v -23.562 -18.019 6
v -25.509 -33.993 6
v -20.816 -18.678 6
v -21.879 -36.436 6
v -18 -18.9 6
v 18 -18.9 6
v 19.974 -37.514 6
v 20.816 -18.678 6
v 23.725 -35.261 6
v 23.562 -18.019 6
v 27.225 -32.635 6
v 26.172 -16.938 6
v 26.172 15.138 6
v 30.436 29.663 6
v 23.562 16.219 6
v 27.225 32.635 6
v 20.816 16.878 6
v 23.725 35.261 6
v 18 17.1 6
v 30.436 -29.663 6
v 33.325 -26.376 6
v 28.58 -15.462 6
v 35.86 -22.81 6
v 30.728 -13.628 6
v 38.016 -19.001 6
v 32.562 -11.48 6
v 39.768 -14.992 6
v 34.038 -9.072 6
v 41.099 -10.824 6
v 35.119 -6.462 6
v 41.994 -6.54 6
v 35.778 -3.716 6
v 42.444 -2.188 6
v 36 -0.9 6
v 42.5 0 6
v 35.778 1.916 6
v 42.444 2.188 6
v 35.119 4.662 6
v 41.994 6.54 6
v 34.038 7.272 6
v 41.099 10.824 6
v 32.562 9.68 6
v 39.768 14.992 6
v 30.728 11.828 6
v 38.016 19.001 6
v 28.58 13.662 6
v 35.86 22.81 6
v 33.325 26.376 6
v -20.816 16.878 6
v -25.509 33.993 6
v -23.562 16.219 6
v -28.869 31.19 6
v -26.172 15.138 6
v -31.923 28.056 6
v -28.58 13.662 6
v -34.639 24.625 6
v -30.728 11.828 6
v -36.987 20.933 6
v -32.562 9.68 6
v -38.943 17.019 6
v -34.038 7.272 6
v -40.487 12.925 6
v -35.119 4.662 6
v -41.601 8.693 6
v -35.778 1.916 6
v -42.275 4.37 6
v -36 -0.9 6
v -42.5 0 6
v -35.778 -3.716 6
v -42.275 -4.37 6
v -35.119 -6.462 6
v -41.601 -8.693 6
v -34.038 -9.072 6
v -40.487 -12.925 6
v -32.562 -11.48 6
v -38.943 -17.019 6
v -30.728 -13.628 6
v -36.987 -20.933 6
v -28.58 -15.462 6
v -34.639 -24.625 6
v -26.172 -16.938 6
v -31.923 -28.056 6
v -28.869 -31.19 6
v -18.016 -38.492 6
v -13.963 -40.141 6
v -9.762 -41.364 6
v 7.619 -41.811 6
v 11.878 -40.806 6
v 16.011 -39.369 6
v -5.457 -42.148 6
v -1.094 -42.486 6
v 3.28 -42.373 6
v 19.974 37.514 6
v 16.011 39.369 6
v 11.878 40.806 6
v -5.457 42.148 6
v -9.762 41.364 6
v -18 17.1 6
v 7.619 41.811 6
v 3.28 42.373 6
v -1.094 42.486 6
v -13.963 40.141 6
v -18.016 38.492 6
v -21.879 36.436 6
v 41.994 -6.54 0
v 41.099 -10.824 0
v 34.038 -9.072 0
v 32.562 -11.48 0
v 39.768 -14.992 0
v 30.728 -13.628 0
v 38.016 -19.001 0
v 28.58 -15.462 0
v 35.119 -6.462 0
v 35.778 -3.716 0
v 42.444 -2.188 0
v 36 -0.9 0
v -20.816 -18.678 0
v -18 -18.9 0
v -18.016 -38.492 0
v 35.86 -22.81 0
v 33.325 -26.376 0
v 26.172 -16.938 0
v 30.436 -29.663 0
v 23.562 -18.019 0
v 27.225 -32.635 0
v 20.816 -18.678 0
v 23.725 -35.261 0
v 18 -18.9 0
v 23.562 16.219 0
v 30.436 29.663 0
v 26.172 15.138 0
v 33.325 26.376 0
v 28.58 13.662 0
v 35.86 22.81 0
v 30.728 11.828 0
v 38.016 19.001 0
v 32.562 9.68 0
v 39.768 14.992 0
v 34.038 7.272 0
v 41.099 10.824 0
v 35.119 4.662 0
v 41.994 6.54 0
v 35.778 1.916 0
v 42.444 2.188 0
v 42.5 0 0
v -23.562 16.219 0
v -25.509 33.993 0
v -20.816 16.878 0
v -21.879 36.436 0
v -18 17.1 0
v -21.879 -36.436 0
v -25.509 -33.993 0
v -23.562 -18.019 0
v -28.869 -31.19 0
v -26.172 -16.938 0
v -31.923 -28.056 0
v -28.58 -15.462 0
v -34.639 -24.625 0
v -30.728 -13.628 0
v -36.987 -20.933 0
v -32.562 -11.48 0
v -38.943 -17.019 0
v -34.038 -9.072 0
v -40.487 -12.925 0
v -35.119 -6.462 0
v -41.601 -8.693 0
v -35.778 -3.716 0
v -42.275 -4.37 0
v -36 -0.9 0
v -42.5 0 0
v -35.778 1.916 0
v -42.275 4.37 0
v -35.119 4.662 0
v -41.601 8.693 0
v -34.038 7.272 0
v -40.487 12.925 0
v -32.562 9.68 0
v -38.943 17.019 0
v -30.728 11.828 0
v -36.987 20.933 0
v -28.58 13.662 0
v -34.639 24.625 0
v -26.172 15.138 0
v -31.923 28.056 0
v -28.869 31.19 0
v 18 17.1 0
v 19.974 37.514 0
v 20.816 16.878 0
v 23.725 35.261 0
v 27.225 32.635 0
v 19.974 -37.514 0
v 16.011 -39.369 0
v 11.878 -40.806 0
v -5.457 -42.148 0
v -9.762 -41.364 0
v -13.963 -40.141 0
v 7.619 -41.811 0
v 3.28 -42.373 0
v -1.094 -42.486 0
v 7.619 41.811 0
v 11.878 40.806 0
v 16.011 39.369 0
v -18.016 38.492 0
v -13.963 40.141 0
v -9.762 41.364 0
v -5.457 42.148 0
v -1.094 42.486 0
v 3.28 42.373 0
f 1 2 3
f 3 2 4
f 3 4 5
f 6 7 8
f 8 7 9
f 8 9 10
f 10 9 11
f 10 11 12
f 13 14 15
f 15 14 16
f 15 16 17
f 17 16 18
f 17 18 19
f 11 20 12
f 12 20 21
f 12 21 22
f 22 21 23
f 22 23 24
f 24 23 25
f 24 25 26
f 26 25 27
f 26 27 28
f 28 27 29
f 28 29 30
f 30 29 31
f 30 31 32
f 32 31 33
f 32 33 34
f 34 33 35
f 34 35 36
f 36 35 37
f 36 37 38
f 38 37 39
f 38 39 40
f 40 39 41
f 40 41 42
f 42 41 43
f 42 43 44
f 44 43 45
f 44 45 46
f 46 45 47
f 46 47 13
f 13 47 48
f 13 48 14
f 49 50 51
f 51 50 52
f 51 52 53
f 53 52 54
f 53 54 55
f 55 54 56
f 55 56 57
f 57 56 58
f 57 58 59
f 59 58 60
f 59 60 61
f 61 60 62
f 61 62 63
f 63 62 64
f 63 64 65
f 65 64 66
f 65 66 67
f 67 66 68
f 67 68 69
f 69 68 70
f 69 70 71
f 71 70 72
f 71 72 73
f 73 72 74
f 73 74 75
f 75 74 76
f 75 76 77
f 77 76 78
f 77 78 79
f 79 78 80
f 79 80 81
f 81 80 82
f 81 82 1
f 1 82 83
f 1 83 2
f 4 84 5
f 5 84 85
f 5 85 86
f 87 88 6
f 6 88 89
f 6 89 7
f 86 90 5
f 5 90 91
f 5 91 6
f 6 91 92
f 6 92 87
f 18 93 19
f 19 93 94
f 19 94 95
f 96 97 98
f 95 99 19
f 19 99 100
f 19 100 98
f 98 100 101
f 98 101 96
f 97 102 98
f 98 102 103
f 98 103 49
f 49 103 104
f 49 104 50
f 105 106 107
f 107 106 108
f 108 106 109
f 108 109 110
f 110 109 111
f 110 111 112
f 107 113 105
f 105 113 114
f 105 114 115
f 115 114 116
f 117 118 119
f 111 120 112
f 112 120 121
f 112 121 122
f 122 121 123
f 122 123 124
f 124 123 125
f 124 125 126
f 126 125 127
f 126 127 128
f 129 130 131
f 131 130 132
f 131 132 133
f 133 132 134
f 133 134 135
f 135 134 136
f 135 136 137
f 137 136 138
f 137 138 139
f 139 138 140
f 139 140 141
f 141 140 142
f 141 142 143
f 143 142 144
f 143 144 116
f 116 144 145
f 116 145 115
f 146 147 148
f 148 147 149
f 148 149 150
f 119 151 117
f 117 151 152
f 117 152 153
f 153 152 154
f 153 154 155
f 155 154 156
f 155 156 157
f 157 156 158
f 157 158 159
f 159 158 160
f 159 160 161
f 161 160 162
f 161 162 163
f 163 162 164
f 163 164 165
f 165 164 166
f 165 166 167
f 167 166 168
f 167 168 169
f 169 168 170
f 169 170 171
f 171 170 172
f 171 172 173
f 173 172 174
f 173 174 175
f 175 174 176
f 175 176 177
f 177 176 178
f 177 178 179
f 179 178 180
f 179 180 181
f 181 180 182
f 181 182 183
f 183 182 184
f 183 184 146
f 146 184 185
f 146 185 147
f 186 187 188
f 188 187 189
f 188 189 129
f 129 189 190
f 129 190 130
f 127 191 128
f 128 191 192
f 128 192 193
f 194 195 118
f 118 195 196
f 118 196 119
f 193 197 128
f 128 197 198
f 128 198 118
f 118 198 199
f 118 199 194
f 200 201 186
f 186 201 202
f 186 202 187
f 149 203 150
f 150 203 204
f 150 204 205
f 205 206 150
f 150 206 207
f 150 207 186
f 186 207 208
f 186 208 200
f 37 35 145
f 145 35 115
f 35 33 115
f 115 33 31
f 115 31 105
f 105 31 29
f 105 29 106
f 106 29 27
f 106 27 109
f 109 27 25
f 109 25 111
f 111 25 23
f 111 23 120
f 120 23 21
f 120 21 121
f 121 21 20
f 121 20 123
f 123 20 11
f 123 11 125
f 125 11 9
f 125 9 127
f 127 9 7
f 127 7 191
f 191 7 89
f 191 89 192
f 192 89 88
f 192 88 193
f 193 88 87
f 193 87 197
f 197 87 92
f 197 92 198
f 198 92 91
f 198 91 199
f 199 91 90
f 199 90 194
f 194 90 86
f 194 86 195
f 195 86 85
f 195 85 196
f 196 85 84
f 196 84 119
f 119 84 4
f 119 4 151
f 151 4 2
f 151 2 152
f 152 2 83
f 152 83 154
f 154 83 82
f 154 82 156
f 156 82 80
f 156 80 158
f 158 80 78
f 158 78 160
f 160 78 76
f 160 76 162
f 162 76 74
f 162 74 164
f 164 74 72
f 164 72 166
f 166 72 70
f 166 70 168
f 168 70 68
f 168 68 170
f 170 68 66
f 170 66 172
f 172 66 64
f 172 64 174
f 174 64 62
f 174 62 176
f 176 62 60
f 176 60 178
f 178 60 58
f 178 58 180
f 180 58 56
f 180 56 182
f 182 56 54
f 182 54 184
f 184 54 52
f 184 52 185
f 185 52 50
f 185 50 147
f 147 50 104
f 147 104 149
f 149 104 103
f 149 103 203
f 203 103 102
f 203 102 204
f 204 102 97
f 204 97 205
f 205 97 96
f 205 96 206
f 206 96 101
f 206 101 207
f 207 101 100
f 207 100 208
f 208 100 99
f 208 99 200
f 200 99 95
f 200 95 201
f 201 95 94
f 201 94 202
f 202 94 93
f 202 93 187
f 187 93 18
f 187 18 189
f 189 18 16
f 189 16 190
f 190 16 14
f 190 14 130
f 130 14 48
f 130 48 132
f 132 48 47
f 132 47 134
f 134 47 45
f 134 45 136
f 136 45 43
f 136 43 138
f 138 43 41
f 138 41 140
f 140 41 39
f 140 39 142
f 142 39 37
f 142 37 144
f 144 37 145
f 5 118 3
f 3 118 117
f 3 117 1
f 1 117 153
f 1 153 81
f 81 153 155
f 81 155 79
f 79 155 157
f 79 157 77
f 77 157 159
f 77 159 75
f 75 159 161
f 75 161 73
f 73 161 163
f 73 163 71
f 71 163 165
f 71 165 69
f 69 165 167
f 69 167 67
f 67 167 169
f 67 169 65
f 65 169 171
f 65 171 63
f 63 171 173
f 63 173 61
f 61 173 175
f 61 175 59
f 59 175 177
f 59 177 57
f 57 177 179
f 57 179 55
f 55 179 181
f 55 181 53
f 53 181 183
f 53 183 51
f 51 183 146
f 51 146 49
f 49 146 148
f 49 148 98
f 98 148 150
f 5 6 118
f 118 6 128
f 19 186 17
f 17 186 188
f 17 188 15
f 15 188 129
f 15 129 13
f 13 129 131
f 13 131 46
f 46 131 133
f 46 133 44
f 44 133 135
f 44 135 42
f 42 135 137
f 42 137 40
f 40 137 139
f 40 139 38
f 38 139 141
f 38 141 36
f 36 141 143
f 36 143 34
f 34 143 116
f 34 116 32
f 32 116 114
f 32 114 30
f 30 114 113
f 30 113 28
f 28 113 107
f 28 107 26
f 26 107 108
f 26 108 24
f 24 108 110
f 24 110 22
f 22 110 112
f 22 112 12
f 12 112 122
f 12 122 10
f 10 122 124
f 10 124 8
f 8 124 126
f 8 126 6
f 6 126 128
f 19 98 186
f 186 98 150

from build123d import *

# Parameters (mm, degrees)
ESQUISSE1_R                  = 42.5
BOSS_EXTRU_1_DEPTH           = 6
ENL_V_MAT_EXTRU_6_DEPTH      = 61.402814504
ENL_V_MAT_EXTRU_6_DEPTH_BACK = 6


with BuildPart() as part:
    # Esquisse1 → Boss.-Extru.1 (new body)
    with BuildSketch(Plane.XY):
        Circle(ESQUISSE1_R)
    extrude(amount=BOSS_EXTRU_1_DEPTH)

    # Esquisse3 → Enlèv. mat.-Extru.6 (cut, two sides: drawn at the far end of the back side and taken through both)
    with BuildSketch(Plane.XY.offset(-ENL_V_MAT_EXTRU_6_DEPTH_BACK)):
        with BuildLine():
            Line((-18, -18.9), (18, -18.9))
            ThreePointArc((18, -18.9), (36, -0.9), (18, 17.1))
            Line((18, 17.1), (-18, 17.1))
            ThreePointArc((-18, 17.1), (-36, -0.9), (-18, -18.9))
        make_face()
    extrude(amount=ENL_V_MAT_EXTRU_6_DEPTH + ENL_V_MAT_EXTRU_6_DEPTH_BACK, mode=Mode.SUBTRACT)


solid = part.part
